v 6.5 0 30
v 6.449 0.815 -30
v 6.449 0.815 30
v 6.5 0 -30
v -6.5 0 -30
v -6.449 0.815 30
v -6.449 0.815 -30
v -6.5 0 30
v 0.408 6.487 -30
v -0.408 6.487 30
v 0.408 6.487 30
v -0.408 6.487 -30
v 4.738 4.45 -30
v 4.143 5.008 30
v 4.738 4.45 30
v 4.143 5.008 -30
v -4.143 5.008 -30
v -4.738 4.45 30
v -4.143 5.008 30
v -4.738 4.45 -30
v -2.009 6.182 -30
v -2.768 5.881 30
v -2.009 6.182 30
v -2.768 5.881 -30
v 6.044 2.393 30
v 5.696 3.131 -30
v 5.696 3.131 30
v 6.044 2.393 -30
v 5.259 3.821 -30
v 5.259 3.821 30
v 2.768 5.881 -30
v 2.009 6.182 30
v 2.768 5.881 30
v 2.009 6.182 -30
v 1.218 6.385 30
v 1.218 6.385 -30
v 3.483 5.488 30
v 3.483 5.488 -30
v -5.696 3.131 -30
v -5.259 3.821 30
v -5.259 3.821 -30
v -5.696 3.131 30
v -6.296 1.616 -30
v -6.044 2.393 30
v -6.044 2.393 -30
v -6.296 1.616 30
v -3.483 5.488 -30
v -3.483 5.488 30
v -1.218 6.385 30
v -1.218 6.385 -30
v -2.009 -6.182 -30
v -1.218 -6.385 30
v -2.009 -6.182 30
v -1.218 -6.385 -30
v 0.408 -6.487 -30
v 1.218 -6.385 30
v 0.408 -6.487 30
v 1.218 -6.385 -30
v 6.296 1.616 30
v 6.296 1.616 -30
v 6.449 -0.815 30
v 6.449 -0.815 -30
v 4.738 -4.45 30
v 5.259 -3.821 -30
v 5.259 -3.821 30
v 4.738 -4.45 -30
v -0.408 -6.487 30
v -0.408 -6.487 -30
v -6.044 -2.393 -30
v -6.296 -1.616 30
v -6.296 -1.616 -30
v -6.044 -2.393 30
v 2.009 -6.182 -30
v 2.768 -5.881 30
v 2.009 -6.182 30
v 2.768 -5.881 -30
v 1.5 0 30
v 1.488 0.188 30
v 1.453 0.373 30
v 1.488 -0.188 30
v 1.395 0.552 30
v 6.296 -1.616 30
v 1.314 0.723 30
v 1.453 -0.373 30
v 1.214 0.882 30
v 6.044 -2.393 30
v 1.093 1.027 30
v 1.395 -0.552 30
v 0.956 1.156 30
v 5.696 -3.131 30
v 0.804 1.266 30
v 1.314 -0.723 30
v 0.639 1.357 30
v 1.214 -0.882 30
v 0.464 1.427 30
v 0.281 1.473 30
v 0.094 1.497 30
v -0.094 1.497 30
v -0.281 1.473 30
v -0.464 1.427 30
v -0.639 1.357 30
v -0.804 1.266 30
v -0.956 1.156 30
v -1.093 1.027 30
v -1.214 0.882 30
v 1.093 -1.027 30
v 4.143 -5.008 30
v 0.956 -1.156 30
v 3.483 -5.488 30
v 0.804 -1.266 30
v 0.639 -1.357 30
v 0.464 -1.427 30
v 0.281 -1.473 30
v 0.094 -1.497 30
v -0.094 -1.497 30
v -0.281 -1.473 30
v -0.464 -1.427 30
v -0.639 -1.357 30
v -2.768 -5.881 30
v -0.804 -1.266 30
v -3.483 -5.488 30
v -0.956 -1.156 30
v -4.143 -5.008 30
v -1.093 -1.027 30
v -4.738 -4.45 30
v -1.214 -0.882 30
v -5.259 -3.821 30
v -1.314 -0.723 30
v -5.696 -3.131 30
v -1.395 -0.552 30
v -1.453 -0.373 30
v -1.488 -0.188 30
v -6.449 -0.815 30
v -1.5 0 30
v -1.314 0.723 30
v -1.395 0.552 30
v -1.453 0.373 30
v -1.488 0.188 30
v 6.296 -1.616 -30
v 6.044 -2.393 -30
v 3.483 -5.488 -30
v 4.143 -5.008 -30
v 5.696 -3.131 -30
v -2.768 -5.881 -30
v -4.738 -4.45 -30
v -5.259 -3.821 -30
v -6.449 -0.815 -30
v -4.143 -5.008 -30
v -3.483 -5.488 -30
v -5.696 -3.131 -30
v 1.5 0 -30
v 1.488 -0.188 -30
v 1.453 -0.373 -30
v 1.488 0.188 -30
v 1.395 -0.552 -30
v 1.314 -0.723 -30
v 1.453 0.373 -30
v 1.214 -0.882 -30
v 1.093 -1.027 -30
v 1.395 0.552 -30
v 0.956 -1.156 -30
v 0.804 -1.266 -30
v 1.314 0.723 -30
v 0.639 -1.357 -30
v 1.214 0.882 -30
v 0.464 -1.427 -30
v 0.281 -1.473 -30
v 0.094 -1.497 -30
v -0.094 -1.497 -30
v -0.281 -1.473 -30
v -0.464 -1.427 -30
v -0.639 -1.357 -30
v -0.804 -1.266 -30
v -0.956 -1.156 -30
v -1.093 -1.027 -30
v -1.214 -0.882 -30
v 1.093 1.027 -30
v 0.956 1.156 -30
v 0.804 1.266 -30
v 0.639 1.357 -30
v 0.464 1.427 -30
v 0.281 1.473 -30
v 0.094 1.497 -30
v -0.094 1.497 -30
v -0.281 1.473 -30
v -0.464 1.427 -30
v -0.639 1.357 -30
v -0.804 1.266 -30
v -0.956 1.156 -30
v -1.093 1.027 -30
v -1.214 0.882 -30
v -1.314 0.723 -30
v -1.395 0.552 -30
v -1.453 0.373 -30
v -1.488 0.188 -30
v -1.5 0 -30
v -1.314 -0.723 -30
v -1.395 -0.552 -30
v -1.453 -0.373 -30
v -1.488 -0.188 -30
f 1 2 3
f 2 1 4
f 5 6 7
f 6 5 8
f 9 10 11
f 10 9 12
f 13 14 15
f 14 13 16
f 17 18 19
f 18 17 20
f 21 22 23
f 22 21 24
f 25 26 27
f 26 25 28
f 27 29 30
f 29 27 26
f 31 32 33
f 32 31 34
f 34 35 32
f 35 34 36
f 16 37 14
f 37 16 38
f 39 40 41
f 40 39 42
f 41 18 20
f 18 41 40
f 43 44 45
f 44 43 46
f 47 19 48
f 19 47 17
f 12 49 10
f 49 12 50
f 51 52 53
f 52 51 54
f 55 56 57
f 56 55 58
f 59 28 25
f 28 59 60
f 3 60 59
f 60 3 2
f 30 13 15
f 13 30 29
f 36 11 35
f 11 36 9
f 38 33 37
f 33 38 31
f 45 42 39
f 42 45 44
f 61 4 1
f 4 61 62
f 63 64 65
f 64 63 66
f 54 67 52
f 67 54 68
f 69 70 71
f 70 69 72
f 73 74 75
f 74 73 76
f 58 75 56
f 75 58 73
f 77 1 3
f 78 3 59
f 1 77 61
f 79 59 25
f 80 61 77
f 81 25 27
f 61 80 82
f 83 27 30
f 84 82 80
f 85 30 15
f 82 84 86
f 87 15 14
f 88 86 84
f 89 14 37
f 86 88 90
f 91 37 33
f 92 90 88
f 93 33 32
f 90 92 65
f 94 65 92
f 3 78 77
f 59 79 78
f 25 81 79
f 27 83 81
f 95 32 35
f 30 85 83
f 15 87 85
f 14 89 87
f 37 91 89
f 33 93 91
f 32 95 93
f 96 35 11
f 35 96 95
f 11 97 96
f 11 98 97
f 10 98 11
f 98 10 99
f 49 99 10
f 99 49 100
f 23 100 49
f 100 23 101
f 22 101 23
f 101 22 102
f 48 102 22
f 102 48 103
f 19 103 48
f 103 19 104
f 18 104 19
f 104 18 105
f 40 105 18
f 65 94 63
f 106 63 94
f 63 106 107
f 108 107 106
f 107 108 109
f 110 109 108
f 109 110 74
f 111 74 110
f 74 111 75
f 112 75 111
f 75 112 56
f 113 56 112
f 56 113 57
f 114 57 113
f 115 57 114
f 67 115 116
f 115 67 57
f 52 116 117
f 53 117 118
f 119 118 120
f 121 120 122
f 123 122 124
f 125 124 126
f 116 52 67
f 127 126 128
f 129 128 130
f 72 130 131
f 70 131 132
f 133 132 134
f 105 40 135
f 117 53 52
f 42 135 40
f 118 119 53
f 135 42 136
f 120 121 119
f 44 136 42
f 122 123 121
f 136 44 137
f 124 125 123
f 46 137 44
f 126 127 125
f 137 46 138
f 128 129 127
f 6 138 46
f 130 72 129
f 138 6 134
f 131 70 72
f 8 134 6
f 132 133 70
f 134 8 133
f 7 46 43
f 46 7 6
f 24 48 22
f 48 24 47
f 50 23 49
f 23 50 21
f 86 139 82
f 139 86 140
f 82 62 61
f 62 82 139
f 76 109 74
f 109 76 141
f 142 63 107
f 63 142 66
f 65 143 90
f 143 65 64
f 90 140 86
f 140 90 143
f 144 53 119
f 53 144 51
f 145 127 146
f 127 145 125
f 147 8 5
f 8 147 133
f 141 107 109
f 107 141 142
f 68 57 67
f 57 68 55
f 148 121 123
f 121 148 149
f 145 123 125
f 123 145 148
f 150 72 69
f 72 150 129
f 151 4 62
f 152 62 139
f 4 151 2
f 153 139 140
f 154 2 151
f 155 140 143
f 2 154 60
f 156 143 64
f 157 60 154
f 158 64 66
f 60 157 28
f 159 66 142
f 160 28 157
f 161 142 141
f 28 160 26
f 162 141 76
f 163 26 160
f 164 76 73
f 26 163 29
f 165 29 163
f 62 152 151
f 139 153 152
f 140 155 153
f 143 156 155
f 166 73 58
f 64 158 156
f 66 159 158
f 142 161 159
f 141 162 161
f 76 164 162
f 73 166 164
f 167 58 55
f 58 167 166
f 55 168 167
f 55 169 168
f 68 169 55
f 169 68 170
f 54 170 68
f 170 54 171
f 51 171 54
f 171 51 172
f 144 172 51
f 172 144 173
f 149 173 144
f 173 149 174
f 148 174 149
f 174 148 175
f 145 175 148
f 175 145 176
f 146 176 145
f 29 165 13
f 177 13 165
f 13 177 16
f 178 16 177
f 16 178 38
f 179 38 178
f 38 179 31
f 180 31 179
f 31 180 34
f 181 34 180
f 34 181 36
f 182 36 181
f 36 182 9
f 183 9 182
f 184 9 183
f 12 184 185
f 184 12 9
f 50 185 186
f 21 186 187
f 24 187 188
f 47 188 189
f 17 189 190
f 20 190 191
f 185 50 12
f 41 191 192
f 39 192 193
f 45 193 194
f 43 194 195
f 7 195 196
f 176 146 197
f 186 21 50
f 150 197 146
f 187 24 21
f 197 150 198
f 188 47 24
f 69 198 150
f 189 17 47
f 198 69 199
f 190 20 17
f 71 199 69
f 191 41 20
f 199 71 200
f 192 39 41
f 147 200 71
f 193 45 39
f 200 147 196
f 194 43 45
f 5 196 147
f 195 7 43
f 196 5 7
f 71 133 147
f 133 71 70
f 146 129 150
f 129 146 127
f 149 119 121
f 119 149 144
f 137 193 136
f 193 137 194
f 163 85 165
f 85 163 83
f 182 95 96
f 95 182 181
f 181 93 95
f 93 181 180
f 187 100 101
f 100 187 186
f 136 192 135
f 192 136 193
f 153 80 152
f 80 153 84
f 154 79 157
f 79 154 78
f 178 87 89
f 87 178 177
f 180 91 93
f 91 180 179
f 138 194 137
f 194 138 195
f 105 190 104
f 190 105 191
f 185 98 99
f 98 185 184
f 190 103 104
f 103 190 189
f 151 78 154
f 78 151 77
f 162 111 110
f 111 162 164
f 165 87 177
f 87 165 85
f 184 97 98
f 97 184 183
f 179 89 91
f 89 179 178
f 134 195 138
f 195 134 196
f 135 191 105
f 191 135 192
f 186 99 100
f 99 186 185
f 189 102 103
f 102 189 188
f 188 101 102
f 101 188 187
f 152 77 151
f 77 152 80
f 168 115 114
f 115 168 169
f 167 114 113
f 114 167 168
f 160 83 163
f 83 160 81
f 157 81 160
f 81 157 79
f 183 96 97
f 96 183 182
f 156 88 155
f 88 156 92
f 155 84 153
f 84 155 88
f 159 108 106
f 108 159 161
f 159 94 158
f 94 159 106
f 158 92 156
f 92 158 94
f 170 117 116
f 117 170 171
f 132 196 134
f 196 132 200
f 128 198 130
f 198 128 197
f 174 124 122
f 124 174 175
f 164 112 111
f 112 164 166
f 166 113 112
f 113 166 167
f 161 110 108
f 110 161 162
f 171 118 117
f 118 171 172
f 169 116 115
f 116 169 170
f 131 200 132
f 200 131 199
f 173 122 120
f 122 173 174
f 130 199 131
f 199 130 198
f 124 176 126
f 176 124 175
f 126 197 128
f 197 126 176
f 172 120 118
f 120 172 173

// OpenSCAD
$fn = 50;


difference() {
	union() {
		translate(v = [0, 0, -30.0000000000]) {
			cylinder(h = 60, r = 6.5000000000);
		}
	}
	union() {
		translate(v = [0, 0, -100.0000000000]) {
			cylinder(h = 200, r = 1.5000000000);
		}
	}
}
